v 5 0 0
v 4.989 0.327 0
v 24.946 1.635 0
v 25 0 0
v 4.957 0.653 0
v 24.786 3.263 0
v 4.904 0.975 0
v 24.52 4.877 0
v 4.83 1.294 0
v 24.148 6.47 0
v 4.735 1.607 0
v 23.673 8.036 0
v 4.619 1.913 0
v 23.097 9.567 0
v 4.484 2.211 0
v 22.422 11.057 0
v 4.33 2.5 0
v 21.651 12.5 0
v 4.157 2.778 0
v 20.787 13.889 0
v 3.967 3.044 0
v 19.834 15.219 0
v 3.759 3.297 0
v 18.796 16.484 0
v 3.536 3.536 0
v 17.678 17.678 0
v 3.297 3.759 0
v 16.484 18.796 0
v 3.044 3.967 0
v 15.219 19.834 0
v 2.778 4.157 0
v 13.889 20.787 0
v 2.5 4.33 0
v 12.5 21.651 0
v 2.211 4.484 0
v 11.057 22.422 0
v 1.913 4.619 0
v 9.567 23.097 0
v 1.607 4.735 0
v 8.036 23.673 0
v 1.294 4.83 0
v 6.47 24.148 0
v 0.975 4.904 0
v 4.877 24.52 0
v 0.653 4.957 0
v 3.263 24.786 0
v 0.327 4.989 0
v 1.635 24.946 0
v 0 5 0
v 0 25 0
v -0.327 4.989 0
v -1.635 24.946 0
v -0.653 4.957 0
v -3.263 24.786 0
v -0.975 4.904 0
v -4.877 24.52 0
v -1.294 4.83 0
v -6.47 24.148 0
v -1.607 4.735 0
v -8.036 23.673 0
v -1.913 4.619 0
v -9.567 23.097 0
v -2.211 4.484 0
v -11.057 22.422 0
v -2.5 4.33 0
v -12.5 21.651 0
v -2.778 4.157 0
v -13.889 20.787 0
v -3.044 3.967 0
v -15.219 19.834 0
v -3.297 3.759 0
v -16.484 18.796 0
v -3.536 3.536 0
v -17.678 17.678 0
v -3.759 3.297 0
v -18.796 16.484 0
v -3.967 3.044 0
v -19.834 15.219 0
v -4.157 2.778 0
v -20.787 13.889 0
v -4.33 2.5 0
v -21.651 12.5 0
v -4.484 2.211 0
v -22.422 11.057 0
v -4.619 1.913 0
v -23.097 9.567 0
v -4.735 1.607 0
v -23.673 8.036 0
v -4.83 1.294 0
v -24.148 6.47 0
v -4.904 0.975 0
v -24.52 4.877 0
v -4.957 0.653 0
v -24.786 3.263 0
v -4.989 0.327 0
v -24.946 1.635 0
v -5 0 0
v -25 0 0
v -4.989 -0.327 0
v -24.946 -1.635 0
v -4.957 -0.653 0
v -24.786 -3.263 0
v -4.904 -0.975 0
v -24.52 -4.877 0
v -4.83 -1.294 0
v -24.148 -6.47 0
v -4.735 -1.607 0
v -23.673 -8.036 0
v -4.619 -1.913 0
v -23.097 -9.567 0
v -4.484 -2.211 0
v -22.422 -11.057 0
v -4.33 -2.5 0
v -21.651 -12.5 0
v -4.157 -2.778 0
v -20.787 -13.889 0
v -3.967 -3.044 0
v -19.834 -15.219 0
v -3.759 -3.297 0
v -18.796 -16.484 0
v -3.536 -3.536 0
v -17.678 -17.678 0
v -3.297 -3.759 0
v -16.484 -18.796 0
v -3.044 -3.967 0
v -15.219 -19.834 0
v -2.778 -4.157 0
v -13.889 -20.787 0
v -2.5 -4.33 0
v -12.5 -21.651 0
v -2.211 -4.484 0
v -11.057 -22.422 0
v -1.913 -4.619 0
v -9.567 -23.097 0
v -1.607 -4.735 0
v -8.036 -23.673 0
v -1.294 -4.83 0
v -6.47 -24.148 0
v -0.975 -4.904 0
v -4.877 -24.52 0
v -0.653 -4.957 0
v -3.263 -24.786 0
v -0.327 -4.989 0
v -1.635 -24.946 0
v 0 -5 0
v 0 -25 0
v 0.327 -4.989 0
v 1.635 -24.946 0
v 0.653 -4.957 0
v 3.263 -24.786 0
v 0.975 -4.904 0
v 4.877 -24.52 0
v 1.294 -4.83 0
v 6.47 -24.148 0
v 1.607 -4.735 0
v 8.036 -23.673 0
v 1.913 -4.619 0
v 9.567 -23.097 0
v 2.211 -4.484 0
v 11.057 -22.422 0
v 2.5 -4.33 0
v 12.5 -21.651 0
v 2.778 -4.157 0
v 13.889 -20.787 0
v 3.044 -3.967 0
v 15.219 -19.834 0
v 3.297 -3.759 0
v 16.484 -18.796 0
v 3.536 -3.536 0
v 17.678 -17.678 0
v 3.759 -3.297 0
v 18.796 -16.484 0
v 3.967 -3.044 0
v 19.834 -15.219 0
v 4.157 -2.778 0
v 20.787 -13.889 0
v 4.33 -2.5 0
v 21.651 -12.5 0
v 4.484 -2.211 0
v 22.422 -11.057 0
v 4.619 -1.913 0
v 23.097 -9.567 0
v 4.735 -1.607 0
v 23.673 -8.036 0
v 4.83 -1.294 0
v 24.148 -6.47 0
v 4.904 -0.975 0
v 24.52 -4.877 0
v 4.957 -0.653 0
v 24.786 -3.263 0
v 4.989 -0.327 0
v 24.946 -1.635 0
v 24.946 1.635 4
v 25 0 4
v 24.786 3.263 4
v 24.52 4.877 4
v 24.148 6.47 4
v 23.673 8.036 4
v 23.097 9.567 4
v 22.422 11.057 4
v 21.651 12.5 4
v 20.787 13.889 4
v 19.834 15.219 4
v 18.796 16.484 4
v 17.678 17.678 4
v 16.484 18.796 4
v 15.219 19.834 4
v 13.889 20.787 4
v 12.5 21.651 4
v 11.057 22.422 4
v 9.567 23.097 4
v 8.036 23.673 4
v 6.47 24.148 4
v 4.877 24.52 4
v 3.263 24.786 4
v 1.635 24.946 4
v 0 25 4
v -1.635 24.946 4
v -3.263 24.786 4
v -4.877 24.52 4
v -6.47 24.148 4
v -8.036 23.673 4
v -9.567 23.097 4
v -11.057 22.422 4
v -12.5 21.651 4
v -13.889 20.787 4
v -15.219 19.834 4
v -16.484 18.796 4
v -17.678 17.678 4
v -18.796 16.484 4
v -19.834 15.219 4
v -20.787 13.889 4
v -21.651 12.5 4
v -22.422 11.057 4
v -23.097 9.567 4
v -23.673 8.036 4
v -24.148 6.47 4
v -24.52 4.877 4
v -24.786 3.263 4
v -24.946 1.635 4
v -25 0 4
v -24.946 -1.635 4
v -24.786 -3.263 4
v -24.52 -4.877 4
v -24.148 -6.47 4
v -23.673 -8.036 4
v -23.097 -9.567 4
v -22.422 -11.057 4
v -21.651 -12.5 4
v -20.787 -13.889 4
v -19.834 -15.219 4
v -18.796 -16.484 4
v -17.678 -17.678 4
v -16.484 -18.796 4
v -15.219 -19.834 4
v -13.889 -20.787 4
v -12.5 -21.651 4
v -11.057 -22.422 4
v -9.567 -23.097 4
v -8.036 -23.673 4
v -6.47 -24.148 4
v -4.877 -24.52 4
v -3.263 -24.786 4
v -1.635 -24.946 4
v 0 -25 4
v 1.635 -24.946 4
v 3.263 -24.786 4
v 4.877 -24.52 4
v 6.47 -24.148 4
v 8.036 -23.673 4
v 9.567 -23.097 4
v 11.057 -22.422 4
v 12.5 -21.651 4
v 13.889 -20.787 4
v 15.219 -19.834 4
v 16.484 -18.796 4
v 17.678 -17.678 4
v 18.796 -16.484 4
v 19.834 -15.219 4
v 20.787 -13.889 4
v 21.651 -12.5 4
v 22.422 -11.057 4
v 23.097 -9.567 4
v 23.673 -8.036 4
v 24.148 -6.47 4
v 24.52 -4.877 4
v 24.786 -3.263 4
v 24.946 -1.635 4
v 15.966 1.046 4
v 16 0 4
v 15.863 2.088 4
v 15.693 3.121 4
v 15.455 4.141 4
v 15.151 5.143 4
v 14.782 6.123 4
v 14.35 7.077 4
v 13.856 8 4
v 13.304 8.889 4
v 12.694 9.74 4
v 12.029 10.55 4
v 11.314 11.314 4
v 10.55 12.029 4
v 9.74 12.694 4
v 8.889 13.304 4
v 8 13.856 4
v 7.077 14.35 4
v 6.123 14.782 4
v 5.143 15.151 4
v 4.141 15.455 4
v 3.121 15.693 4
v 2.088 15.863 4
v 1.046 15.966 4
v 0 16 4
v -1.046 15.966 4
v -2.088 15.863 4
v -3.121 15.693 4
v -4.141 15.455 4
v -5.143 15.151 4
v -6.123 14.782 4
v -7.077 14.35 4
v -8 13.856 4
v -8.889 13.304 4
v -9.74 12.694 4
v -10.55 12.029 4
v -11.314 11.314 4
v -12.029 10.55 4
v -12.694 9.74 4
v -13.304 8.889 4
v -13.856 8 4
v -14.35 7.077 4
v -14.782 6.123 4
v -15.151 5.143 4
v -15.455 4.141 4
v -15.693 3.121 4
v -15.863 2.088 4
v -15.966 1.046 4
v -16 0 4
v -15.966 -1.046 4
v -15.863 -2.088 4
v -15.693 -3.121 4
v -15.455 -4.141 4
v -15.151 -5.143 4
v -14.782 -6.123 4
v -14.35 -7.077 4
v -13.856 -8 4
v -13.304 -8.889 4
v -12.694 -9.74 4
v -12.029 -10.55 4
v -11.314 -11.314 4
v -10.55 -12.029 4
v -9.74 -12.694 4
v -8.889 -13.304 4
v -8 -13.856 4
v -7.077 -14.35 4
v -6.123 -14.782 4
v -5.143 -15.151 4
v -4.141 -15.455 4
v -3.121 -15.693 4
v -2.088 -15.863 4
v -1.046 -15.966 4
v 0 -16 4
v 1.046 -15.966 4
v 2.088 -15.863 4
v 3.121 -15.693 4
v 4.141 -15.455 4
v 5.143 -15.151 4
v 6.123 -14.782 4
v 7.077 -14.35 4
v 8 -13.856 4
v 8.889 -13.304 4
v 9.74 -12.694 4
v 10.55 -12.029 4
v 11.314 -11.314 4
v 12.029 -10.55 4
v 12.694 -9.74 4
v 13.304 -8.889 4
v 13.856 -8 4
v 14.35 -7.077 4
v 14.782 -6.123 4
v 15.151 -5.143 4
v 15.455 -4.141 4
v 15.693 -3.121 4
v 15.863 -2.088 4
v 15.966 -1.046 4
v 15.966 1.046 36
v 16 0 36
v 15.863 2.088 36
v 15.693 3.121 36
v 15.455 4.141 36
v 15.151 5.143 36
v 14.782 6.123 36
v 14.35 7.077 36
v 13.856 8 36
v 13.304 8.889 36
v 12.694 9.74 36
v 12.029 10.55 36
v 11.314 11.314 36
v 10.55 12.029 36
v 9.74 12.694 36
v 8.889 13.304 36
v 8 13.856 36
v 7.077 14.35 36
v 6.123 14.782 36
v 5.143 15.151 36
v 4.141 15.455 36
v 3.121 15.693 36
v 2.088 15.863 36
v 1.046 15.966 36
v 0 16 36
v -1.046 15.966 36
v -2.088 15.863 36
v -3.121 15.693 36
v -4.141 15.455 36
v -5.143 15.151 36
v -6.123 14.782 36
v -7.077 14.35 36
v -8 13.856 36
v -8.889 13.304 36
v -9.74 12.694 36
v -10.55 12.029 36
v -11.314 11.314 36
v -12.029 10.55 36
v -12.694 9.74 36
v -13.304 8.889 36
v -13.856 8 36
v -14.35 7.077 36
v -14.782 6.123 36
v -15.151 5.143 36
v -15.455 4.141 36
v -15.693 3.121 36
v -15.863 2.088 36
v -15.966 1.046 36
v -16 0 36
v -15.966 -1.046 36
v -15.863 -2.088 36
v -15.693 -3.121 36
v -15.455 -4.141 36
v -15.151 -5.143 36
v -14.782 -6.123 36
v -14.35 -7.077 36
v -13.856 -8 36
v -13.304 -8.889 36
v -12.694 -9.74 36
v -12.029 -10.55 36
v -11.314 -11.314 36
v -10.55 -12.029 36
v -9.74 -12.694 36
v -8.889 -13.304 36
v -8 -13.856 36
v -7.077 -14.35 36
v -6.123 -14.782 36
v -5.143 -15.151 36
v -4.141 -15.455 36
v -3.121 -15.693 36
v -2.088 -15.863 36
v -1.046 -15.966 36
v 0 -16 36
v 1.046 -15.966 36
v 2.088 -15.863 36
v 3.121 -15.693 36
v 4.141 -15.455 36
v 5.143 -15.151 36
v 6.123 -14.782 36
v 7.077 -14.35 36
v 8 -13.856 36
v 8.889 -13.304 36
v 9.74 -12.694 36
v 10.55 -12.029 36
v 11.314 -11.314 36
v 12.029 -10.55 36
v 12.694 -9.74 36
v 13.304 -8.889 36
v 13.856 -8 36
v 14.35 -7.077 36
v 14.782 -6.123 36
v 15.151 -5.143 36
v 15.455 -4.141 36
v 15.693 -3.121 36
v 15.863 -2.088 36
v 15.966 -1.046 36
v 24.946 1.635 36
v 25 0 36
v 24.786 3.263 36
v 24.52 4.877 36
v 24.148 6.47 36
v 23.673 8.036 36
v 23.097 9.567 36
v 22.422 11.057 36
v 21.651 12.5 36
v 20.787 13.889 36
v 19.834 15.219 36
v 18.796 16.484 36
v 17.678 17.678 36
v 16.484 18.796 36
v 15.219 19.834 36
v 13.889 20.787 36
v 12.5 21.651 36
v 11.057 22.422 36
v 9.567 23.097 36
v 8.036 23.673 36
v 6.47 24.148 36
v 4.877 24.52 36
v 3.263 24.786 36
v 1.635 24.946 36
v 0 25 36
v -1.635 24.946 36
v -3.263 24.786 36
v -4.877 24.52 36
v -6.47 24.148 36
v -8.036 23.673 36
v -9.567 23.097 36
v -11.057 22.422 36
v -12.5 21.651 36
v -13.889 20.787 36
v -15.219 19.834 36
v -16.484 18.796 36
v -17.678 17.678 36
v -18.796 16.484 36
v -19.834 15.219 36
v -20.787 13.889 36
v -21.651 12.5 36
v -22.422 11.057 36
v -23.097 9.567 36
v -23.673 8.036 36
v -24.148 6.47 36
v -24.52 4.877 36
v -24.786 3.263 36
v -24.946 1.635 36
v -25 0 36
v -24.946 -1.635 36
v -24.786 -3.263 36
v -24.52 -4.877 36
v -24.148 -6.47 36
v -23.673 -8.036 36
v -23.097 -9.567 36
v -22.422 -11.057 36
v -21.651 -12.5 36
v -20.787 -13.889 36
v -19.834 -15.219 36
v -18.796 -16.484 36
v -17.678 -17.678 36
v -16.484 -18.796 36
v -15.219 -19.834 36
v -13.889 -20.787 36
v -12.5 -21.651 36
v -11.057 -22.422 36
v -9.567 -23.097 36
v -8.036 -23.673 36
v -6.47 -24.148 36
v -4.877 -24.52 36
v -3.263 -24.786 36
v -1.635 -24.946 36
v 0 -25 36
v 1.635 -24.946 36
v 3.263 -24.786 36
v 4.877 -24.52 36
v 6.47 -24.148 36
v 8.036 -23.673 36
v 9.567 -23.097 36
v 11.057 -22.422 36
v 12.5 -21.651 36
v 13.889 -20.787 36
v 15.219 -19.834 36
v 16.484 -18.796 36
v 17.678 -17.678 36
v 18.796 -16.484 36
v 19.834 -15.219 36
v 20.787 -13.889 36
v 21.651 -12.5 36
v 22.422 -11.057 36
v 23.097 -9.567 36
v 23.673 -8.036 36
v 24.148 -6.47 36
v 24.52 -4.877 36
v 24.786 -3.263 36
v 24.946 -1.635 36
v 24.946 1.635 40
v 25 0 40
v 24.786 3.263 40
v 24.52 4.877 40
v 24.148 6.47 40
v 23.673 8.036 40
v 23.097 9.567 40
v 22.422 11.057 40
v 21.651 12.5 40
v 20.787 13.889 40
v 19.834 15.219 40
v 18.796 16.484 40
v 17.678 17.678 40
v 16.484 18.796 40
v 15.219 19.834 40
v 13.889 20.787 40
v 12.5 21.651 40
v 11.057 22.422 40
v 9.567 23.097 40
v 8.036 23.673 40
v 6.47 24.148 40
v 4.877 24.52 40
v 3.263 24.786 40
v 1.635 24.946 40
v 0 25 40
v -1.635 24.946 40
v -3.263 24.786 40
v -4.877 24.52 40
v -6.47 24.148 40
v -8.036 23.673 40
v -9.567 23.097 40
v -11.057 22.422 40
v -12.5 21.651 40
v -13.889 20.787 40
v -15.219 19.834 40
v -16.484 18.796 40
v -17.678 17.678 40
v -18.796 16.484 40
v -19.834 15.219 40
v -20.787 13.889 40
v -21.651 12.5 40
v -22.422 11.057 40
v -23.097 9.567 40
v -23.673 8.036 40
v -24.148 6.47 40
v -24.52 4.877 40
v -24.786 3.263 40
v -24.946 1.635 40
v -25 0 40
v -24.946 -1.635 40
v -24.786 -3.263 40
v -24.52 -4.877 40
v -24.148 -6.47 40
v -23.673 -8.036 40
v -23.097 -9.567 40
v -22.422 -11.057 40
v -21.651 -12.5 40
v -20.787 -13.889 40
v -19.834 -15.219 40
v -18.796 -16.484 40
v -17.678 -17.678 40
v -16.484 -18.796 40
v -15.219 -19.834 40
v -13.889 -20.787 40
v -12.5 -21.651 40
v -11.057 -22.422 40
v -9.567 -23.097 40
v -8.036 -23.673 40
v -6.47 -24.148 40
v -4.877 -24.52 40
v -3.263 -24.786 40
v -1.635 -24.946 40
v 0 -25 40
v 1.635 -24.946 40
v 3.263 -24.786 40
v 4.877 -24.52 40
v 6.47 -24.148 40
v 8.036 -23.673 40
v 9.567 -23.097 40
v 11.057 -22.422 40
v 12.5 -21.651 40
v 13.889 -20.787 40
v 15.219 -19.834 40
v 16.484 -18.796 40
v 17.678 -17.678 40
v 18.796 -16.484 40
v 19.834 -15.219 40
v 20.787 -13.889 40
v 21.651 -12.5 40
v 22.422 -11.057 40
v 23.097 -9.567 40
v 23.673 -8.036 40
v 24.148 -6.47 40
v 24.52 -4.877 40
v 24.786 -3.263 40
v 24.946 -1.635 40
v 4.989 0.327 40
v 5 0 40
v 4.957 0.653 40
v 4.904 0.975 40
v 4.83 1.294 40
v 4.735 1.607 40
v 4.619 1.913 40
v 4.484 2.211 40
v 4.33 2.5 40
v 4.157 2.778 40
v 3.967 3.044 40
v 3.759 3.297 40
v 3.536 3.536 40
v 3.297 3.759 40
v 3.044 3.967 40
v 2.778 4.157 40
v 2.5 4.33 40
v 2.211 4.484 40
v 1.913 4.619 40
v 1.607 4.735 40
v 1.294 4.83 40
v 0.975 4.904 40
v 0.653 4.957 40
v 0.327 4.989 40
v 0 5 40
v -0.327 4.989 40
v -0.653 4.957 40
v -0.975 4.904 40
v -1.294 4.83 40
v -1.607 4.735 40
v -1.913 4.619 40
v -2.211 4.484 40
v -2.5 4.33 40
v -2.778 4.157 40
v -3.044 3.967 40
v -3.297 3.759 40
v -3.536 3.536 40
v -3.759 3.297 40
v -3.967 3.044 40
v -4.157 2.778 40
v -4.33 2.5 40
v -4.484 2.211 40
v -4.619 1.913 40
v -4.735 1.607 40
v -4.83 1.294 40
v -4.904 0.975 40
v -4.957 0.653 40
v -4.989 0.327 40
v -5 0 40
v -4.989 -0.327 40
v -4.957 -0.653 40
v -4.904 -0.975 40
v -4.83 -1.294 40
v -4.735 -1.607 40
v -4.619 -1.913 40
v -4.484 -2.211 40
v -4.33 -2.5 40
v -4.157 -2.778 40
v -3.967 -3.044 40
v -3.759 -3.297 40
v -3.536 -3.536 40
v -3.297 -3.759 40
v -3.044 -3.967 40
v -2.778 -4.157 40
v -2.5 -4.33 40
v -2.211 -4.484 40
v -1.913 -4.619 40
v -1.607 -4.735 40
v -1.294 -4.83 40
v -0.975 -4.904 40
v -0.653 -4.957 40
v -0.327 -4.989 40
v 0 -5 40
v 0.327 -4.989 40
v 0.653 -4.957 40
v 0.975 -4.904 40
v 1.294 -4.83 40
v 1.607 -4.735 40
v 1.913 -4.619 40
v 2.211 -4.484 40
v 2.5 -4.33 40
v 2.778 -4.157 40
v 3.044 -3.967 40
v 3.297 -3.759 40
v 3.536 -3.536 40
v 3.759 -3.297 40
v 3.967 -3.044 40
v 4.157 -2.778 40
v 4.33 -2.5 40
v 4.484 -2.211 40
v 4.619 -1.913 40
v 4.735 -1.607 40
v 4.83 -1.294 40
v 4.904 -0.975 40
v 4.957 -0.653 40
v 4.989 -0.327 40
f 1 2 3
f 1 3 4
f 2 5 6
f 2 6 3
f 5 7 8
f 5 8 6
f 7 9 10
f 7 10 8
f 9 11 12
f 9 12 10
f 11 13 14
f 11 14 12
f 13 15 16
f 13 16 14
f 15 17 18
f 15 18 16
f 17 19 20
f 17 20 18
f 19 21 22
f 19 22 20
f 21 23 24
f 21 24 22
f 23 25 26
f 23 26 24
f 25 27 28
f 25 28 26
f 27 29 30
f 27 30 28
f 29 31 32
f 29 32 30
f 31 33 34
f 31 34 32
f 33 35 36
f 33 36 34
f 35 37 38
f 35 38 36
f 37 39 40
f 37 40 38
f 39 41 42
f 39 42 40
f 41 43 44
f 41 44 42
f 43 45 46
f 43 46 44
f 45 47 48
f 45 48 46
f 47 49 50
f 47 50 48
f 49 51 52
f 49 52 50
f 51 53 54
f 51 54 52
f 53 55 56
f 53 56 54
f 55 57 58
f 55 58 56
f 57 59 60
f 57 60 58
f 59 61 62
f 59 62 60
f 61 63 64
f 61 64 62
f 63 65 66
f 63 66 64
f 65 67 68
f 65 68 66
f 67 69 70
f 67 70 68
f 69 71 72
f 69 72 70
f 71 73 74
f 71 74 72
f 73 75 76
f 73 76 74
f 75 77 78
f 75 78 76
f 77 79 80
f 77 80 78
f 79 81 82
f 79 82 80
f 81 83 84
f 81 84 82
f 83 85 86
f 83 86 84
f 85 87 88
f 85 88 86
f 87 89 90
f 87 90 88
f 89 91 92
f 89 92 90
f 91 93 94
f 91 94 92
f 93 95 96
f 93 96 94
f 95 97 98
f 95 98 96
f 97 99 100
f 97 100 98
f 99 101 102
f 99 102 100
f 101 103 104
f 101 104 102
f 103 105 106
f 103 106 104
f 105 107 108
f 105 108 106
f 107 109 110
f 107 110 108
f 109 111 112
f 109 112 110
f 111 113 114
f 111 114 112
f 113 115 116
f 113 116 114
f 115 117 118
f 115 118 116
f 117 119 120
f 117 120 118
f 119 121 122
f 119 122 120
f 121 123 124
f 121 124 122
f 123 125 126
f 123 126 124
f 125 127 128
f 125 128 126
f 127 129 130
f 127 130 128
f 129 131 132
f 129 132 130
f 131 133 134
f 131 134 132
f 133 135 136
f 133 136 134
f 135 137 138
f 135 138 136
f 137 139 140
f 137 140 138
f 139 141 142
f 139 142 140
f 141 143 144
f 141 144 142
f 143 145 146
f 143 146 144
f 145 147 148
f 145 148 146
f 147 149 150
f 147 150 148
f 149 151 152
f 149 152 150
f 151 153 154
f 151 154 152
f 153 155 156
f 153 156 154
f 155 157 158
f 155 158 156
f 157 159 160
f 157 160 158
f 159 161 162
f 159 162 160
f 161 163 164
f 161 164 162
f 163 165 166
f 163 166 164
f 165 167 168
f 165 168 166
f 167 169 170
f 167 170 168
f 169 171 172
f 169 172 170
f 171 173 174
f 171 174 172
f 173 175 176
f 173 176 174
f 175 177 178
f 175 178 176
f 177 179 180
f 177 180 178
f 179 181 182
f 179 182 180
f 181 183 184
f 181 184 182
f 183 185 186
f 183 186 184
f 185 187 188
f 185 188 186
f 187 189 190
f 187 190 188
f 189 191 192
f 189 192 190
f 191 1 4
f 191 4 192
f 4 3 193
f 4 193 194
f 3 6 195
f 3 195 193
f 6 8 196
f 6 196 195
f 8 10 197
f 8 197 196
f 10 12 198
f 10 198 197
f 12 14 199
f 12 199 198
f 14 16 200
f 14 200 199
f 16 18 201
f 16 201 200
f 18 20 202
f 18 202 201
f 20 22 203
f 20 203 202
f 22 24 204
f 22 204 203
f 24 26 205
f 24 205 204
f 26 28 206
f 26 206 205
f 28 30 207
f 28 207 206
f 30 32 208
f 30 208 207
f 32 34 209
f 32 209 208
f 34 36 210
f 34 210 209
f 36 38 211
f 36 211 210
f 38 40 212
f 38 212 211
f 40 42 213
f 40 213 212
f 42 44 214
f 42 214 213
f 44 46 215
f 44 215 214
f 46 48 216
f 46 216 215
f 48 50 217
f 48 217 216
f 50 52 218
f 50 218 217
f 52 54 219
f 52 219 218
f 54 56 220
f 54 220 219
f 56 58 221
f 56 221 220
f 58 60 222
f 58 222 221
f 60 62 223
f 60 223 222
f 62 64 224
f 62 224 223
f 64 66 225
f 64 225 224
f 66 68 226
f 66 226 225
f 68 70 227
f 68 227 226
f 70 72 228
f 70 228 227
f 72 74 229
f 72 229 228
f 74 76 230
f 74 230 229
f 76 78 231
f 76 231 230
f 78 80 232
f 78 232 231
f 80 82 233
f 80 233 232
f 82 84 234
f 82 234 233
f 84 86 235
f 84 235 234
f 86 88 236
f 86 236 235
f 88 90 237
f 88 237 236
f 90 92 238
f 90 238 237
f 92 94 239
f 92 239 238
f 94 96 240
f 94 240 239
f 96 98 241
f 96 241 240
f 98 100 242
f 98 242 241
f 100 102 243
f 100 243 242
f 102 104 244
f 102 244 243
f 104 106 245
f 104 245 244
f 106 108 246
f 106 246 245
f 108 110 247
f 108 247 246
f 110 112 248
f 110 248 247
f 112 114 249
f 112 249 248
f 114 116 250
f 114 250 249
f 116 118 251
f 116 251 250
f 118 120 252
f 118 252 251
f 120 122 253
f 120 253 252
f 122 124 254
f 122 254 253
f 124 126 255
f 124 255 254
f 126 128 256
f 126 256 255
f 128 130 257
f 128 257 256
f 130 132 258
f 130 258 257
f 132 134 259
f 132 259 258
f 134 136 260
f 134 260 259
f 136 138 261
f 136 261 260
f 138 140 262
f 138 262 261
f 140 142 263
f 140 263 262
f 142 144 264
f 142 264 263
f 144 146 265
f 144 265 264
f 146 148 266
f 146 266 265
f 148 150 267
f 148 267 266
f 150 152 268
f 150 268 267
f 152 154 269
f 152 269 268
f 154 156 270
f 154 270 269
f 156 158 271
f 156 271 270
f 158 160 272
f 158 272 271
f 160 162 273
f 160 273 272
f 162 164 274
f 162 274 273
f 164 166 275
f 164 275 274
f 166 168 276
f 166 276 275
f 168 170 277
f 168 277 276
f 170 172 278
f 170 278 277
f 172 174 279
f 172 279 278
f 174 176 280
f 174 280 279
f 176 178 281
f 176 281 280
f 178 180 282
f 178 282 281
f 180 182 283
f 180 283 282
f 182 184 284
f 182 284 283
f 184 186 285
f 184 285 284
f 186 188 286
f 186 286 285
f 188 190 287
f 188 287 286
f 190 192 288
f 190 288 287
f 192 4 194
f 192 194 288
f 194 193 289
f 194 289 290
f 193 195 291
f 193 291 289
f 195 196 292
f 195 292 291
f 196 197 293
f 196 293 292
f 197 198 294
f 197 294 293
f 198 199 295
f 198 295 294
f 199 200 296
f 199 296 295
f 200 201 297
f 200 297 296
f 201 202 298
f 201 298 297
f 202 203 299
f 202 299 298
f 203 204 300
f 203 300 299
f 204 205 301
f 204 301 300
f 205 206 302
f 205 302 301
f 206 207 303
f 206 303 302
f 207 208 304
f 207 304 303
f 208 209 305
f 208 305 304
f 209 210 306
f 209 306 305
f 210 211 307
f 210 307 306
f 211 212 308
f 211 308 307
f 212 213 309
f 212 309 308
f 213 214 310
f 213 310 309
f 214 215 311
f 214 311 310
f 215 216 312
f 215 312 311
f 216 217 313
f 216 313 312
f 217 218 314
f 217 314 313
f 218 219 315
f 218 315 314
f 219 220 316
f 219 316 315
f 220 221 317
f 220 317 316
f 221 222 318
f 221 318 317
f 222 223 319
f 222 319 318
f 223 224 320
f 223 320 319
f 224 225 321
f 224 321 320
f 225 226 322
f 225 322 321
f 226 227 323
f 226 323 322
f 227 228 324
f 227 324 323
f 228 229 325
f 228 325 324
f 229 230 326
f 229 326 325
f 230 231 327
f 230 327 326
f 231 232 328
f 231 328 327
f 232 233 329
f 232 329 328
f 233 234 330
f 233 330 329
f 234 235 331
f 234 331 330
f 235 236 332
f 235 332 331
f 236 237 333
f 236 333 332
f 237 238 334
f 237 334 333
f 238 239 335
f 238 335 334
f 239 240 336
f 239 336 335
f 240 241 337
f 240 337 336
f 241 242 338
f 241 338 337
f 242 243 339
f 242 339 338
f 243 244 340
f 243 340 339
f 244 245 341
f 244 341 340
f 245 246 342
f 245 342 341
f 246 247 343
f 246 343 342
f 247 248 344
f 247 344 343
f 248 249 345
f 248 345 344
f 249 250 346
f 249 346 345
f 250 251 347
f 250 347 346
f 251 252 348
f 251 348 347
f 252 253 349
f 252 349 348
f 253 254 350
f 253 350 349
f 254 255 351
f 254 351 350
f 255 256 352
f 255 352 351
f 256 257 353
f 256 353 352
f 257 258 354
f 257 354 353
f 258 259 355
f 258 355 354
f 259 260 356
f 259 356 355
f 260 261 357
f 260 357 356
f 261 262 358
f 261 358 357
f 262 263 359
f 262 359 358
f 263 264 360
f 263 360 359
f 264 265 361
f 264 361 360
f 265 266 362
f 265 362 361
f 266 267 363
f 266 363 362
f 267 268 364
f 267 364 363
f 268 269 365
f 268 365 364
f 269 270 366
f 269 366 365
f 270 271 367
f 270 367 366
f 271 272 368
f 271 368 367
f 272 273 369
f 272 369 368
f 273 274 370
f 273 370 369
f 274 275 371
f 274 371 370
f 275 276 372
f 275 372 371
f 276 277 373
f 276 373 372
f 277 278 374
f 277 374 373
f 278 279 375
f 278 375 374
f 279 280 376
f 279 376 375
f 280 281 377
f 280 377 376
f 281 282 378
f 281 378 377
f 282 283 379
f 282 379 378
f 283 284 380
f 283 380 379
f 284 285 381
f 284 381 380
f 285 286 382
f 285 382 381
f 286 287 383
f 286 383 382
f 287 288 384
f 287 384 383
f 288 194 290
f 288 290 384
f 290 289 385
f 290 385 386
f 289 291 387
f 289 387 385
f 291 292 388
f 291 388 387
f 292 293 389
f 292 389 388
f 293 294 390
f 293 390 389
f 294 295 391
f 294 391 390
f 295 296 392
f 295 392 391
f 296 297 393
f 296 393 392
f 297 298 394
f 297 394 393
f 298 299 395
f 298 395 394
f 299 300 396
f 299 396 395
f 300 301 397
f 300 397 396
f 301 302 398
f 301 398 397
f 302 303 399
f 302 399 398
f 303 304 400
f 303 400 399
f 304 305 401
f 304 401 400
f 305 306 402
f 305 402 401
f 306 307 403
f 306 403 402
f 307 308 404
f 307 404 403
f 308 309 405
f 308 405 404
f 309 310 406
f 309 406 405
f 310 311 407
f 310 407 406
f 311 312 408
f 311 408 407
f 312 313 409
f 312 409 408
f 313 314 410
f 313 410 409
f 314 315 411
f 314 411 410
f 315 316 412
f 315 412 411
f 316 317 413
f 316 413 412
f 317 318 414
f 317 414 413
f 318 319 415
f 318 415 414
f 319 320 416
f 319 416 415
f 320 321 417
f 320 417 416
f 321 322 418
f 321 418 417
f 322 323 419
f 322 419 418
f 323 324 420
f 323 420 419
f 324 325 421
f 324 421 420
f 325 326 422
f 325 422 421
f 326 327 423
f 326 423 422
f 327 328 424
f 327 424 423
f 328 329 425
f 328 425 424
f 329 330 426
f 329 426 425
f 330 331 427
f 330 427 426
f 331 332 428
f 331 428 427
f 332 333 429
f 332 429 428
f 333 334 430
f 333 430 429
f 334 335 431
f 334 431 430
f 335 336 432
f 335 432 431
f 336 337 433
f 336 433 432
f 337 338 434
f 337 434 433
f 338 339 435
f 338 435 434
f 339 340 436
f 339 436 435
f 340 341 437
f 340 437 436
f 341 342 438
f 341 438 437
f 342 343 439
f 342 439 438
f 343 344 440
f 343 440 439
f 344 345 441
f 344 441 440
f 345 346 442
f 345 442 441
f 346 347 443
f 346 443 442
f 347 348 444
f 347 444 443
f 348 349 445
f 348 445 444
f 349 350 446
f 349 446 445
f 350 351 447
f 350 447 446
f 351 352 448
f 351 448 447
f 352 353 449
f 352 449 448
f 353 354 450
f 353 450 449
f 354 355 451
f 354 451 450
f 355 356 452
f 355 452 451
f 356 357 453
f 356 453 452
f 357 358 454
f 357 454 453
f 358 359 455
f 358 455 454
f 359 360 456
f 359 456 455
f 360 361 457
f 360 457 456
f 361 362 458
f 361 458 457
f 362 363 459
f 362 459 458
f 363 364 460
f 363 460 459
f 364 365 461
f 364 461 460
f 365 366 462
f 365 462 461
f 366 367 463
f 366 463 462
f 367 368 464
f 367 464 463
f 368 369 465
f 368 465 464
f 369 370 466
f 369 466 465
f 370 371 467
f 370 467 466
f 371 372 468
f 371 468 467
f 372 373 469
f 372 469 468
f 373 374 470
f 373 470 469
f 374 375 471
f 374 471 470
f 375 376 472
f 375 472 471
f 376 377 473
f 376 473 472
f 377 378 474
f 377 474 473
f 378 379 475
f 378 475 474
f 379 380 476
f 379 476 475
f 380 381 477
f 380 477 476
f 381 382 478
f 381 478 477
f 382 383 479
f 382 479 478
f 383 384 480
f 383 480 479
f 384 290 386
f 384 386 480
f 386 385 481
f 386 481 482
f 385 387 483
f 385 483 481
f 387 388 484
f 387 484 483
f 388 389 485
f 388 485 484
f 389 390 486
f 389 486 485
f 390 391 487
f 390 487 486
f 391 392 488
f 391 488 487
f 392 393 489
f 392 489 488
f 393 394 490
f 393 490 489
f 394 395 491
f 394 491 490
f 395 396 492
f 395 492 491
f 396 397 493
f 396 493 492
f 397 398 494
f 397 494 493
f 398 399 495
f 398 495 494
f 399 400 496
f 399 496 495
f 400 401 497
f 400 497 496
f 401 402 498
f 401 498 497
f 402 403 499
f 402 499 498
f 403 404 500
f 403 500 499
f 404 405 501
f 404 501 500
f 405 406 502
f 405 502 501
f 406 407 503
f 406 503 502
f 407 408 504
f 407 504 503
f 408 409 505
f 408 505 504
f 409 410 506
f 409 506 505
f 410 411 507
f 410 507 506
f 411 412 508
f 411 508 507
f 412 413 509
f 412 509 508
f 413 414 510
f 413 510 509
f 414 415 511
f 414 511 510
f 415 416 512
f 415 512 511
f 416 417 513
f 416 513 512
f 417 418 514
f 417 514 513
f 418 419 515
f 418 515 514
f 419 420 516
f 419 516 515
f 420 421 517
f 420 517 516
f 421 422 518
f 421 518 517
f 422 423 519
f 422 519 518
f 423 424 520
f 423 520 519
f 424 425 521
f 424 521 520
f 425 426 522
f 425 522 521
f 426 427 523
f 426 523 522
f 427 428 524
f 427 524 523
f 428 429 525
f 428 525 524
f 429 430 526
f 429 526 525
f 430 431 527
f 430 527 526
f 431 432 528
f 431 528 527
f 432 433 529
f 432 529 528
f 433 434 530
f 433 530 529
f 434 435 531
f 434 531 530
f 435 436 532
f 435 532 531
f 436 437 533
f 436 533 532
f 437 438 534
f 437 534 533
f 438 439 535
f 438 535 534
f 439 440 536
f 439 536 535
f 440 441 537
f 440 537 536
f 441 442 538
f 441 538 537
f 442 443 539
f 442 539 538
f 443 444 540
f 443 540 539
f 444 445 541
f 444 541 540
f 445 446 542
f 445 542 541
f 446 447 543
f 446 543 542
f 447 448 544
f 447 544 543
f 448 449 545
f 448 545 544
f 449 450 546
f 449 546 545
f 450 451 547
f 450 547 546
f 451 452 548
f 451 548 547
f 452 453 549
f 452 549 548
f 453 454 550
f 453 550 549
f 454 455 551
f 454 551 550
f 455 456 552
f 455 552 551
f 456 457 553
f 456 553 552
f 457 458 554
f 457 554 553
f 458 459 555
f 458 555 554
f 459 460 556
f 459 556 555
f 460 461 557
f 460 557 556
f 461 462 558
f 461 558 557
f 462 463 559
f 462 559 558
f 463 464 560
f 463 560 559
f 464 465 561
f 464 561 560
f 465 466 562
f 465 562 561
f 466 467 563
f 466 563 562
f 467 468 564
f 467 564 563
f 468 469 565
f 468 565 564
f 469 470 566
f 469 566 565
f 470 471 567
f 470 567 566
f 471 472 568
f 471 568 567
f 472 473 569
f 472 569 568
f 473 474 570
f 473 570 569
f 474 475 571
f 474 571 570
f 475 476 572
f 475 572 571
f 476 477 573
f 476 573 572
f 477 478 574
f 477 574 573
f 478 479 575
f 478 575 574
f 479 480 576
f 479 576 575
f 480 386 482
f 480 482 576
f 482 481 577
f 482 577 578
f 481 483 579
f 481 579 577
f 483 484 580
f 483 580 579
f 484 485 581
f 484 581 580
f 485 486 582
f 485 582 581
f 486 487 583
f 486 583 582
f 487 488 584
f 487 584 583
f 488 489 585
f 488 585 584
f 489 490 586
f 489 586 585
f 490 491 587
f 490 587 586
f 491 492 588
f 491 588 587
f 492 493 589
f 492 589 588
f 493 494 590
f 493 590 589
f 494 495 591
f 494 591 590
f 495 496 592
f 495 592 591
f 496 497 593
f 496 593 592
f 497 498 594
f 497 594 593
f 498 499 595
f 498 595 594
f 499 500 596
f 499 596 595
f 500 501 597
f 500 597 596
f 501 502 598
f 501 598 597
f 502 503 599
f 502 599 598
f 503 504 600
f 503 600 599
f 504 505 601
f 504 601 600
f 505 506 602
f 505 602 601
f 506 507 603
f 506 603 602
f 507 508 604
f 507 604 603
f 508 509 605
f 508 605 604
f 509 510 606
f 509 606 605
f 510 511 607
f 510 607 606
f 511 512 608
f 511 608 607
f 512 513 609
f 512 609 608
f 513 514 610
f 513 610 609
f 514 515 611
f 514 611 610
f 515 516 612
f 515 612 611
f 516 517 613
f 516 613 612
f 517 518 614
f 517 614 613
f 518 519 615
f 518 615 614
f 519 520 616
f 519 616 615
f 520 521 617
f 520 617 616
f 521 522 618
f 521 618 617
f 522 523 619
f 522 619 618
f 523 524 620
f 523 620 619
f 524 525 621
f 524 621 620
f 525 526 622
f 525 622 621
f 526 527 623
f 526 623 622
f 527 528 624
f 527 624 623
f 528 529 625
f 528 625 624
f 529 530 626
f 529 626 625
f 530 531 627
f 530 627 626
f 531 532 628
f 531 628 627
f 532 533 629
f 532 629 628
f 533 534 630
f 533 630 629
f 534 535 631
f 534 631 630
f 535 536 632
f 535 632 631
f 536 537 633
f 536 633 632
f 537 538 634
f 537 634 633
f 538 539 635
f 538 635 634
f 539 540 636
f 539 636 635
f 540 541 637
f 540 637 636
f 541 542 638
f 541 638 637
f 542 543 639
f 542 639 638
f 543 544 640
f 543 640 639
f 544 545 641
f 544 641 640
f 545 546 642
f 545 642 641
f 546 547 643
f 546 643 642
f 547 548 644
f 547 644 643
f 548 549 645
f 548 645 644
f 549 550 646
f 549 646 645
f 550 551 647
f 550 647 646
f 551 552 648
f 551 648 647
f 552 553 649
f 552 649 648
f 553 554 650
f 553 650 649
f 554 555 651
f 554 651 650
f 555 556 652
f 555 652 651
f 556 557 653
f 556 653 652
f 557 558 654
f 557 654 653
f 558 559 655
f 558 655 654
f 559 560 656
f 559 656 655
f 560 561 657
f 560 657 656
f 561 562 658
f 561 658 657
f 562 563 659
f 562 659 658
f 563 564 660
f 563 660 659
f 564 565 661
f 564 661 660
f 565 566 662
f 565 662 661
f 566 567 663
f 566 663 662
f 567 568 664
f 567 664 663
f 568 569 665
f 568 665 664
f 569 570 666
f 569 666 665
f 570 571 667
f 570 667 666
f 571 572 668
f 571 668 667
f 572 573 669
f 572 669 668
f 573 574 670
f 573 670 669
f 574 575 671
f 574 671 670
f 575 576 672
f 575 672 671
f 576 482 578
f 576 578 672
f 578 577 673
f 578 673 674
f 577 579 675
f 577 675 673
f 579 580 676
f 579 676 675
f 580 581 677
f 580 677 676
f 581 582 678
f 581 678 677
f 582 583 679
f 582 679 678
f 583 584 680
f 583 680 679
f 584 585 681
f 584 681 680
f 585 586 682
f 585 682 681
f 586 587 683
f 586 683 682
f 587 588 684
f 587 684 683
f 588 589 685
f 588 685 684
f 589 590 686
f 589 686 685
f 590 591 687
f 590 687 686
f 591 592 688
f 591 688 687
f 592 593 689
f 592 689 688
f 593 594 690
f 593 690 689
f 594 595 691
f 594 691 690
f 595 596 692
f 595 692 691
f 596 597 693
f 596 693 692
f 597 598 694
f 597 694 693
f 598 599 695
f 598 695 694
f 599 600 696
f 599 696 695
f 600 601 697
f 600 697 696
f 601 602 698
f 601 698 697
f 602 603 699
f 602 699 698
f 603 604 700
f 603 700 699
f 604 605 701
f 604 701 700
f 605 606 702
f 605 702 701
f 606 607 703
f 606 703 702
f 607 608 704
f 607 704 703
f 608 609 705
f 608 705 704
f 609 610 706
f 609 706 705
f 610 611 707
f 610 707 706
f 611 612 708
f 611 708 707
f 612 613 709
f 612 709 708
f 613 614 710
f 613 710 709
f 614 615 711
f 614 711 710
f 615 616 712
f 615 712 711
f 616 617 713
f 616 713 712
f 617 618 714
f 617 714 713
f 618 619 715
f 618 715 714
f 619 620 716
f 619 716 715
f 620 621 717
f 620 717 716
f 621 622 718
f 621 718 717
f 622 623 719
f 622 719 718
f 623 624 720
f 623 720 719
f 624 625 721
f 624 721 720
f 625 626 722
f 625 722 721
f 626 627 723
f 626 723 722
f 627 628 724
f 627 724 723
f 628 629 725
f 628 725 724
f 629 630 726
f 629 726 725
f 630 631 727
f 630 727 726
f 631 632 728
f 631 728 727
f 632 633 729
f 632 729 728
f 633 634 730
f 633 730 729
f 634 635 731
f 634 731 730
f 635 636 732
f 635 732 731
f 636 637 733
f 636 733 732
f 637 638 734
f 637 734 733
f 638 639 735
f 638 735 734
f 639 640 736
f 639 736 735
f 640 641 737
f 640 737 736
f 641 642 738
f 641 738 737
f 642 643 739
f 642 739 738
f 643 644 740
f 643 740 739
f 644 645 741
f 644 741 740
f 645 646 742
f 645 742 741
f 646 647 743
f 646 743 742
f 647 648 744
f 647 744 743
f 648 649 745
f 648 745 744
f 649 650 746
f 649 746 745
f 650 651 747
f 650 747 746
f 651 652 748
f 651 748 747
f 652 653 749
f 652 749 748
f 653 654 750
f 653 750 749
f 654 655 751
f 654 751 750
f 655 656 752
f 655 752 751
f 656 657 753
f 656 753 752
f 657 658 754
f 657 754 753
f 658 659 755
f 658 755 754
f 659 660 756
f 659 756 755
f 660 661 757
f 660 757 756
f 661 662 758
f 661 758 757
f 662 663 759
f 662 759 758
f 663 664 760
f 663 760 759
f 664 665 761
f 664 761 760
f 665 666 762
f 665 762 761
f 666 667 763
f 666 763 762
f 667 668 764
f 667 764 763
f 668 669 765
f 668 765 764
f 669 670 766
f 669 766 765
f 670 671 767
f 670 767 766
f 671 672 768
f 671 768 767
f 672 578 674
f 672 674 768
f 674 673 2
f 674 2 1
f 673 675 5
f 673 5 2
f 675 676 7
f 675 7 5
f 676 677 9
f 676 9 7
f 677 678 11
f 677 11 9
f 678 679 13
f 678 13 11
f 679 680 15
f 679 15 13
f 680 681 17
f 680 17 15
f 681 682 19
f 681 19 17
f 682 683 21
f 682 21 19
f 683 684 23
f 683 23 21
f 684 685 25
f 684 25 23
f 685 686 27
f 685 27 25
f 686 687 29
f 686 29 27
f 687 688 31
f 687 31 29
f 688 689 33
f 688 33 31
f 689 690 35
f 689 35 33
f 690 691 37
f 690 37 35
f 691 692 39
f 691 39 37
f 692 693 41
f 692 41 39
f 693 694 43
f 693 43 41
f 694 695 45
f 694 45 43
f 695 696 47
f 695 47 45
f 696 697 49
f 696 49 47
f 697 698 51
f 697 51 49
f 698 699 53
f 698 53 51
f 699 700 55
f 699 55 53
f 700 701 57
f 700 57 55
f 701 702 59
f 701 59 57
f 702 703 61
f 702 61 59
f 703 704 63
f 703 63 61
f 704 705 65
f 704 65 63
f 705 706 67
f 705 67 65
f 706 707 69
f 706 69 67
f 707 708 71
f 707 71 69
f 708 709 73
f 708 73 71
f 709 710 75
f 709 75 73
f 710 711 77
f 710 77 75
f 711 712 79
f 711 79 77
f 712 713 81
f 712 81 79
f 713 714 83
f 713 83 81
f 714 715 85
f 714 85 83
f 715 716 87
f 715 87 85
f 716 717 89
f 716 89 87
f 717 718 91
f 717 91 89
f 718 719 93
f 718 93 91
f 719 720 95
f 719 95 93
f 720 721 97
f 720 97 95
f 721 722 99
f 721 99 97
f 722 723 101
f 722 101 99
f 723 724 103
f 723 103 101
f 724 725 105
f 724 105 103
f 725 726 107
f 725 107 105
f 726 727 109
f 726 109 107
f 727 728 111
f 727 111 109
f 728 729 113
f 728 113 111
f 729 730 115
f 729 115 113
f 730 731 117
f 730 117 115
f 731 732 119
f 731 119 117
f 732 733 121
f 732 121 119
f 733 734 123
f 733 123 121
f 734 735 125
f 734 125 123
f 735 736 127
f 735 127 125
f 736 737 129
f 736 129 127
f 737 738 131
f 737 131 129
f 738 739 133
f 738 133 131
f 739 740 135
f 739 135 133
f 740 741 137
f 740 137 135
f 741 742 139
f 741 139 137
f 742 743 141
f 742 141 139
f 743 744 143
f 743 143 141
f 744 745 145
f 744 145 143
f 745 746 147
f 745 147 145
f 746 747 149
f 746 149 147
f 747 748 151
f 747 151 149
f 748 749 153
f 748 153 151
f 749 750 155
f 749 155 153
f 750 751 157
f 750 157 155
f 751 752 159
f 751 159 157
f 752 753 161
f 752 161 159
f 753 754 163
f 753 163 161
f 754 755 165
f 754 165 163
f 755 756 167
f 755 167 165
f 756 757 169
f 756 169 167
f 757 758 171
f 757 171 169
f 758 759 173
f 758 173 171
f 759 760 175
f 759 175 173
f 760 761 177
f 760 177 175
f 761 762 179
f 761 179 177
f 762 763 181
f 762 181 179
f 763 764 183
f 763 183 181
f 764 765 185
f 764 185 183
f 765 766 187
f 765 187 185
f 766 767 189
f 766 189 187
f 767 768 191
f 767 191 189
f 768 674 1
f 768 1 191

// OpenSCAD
// Original MechIntel educational model. CC0-1.0. Units: mm.
// Not a standardized or load-rated component.
$fn=96;
// Section points: [radius, height], mm. Edit to change the profile.
section=[[5, 0], [25, 0], [25, 4], [16, 4], [16, 36], [25, 36], [25, 40], [5, 40]];
rotate_extrude($fn=96) polygon(points=section);
